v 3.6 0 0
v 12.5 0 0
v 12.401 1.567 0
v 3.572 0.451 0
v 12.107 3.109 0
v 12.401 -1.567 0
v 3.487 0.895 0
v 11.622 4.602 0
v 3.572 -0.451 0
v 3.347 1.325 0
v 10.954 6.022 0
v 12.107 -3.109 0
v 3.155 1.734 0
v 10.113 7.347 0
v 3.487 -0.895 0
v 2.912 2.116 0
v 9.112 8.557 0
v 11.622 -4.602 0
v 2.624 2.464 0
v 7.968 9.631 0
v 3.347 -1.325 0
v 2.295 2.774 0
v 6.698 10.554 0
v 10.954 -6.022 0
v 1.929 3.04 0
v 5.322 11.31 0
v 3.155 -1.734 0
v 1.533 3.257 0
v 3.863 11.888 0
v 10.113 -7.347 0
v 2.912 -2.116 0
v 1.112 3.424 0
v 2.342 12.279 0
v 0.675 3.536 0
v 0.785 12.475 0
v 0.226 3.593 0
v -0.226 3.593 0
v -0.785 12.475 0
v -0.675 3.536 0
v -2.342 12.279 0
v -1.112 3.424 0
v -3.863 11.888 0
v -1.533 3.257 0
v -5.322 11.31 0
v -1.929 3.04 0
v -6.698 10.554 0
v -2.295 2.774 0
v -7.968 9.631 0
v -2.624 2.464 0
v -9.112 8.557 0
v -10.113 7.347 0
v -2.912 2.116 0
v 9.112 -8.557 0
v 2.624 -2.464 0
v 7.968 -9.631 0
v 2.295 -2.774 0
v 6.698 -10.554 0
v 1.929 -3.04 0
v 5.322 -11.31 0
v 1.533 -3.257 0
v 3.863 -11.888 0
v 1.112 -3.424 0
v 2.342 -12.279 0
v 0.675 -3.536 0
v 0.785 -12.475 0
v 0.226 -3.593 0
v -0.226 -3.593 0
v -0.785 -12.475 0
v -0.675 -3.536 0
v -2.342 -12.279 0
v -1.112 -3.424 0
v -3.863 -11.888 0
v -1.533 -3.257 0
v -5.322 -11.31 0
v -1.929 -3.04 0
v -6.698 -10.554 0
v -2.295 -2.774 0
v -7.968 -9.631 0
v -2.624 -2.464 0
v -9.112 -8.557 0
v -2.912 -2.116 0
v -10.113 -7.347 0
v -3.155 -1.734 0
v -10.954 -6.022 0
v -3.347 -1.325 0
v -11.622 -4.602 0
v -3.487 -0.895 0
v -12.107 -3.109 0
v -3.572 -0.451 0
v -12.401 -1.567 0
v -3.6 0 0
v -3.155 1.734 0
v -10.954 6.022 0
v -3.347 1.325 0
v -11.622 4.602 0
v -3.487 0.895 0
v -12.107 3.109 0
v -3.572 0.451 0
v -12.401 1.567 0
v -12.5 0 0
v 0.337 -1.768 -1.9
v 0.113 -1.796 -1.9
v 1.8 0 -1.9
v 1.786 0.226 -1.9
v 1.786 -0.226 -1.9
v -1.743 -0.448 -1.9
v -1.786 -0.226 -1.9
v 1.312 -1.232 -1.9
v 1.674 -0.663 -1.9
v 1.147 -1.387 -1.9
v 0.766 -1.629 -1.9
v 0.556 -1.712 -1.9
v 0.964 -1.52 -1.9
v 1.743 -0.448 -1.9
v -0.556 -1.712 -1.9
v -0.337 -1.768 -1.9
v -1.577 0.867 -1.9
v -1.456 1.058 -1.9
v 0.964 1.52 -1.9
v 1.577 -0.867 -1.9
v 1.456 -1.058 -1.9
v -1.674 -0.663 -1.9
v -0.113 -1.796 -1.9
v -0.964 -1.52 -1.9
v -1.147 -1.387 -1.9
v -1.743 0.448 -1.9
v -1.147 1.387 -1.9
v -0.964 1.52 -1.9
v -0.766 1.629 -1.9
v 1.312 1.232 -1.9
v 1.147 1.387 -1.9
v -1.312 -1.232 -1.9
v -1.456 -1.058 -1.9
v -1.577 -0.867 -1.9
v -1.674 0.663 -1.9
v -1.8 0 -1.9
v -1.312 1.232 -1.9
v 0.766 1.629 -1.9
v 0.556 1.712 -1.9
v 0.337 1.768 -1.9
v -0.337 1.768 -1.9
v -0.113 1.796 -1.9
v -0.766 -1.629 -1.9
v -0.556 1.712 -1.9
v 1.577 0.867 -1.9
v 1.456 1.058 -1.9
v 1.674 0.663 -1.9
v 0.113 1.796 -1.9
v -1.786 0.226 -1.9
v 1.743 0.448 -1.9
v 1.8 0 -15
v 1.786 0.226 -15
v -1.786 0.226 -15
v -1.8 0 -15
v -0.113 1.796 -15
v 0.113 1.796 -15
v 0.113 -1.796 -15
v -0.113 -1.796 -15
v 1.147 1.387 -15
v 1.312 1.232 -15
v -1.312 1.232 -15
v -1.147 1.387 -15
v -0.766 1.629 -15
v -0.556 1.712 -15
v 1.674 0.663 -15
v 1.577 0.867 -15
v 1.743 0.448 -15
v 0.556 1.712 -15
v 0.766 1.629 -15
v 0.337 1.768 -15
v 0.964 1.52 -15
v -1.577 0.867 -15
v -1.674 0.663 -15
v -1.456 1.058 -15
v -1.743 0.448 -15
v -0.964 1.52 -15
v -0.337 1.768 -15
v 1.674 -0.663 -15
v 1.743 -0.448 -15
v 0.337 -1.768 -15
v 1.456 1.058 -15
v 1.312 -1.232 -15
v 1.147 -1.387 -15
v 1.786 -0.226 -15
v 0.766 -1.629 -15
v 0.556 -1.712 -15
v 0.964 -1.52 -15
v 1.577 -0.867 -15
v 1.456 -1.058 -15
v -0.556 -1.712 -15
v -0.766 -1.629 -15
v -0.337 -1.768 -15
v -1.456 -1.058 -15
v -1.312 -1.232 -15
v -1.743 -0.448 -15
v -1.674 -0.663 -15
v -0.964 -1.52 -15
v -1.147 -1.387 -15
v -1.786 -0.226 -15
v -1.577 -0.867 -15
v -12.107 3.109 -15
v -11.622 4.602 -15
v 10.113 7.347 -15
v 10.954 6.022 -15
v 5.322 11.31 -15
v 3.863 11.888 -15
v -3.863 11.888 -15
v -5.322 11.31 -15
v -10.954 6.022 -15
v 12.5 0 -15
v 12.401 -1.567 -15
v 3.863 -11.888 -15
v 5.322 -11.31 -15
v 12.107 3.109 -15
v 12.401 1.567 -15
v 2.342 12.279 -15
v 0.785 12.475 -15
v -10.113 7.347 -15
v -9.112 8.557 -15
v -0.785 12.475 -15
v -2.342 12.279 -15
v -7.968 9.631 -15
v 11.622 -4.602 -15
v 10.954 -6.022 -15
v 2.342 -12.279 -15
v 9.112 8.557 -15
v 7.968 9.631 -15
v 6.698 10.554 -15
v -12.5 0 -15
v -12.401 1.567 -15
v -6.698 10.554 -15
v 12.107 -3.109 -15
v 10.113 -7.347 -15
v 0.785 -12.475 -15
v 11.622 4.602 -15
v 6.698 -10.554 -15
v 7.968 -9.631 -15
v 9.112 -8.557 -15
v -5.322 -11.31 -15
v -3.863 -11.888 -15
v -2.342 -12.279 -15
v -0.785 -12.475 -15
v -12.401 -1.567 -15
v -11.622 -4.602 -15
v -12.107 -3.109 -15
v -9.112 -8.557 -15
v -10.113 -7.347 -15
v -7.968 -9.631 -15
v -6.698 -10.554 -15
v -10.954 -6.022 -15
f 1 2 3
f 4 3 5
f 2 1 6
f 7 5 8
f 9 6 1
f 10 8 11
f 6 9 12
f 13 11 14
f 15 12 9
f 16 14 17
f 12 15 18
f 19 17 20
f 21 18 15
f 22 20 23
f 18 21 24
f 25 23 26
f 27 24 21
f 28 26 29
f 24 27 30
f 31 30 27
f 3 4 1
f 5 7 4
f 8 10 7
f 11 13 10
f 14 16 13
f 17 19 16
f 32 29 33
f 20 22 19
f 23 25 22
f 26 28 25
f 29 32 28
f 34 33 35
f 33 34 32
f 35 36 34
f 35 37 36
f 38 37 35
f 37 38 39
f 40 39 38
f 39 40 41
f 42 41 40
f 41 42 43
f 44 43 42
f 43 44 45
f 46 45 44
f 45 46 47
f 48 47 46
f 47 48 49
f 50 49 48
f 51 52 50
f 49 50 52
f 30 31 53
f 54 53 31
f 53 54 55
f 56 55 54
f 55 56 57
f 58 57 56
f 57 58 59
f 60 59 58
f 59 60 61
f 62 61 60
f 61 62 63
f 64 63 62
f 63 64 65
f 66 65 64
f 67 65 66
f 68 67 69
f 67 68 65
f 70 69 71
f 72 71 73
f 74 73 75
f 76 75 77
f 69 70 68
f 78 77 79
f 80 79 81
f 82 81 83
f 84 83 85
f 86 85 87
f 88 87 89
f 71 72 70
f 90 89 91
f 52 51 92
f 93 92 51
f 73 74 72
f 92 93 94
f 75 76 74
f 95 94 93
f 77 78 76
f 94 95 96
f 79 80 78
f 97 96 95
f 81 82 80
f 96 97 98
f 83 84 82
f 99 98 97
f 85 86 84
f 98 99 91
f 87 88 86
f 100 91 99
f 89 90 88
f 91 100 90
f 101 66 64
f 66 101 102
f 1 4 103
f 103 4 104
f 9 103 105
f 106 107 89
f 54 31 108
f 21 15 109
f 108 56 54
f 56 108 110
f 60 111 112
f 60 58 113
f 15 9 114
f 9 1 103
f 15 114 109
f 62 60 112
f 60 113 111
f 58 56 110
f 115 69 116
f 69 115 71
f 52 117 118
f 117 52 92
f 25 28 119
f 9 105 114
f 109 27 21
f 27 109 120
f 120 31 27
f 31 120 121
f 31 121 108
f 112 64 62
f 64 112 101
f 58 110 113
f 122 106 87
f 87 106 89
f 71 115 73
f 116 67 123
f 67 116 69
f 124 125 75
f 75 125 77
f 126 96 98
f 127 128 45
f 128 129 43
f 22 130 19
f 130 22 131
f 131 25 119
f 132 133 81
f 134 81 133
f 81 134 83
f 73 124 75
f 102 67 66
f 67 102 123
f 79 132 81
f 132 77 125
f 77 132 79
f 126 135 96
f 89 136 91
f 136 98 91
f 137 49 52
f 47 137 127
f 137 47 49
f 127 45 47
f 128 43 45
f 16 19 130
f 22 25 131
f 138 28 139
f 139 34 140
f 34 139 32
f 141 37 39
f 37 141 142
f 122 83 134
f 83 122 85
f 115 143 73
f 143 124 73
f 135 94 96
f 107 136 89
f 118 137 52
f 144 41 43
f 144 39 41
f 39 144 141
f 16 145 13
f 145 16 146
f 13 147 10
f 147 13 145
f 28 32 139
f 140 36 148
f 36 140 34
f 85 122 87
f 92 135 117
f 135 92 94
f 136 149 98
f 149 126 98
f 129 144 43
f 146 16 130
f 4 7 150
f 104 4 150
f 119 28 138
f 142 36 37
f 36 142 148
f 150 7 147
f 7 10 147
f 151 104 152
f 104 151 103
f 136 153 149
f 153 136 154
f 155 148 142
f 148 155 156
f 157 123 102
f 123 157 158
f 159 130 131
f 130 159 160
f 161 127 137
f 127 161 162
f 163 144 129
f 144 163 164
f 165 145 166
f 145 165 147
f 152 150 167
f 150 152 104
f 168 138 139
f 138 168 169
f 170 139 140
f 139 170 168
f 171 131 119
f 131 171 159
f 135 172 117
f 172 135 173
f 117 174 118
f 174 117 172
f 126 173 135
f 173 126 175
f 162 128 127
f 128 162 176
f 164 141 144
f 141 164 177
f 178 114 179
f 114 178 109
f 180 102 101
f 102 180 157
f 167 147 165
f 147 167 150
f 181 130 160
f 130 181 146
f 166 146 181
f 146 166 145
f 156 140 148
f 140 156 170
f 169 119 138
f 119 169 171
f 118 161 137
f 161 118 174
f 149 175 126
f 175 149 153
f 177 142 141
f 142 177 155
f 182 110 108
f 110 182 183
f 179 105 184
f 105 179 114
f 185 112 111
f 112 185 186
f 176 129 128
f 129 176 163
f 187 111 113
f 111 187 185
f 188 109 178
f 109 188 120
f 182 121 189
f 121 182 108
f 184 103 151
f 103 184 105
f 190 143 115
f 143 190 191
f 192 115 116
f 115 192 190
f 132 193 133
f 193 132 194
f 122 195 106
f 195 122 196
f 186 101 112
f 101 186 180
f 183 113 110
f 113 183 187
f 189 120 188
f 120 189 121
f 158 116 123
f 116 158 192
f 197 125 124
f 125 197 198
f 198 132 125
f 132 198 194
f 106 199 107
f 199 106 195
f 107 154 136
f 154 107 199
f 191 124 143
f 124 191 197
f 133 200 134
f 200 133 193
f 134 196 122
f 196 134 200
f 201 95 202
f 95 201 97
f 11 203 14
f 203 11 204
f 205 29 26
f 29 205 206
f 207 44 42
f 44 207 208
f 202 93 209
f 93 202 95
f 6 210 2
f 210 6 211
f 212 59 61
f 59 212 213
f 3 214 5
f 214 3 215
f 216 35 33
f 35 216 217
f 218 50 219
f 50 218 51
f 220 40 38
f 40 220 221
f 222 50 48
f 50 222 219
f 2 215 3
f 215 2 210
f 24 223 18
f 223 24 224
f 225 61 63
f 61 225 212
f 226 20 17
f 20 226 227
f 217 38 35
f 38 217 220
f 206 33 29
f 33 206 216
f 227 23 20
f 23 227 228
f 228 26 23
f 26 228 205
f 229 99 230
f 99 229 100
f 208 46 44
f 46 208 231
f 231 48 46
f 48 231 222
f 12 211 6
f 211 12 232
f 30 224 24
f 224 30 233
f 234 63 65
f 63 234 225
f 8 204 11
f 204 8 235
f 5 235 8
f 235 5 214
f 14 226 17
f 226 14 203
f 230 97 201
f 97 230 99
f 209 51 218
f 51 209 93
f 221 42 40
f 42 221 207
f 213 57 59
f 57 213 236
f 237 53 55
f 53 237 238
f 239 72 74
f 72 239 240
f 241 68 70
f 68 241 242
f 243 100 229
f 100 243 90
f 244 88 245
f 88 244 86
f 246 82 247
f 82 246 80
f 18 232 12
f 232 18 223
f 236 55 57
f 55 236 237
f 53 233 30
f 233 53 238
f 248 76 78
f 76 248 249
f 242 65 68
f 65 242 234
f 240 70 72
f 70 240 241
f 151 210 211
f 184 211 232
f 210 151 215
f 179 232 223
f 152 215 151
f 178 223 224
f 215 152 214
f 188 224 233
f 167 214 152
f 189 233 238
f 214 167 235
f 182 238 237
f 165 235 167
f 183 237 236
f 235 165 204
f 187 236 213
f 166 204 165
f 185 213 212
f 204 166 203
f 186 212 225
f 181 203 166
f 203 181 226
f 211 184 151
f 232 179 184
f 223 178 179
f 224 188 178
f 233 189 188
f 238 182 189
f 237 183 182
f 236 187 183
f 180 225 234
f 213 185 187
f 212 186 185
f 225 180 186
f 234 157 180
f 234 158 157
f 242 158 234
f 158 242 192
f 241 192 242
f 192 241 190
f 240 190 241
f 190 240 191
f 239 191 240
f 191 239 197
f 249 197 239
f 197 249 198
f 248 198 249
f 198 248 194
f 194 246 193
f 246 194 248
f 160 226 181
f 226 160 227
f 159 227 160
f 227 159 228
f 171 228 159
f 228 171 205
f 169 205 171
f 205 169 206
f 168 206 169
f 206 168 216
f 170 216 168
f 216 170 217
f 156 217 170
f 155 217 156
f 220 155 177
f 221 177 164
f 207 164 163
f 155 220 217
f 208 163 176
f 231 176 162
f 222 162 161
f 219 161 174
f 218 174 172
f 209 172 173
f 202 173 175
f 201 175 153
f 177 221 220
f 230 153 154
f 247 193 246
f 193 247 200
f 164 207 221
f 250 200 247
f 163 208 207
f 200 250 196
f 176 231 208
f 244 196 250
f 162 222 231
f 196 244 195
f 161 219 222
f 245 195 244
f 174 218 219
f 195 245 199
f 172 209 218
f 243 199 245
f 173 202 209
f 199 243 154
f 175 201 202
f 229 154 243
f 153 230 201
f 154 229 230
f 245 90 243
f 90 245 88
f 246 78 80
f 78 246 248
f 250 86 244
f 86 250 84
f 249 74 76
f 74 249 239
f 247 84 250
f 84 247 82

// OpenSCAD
$fn = 50;

difference() {
	union() {
		translate(v = [0, 0, -15.0]) {
			cylinder(h = 15, r = 12.5);
		}
	}
	union() {
		translate(v = [0, 0, 0]) {
			rotate(a = [0, 0, 0]) {
				difference() {
					union() {
						translate(v = [0, 0, -18.0]) {
							cylinder(h = 18, r = 1.5);
						}
						translate(v = [0, 0, -1.9]) {
							cylinder(h = 1.9, r1 = 1.8, r2 = 3.6);
						}
						translate(v = [0, 0, -18.0]) {
							cylinder(h = 18, r = 1.8);
						}
						translate(v = [0, 0, -18.0]) {
							cylinder(h = 18, r = 1.5);
						}
					}
					union();
				}
			}
		}
	}
}
